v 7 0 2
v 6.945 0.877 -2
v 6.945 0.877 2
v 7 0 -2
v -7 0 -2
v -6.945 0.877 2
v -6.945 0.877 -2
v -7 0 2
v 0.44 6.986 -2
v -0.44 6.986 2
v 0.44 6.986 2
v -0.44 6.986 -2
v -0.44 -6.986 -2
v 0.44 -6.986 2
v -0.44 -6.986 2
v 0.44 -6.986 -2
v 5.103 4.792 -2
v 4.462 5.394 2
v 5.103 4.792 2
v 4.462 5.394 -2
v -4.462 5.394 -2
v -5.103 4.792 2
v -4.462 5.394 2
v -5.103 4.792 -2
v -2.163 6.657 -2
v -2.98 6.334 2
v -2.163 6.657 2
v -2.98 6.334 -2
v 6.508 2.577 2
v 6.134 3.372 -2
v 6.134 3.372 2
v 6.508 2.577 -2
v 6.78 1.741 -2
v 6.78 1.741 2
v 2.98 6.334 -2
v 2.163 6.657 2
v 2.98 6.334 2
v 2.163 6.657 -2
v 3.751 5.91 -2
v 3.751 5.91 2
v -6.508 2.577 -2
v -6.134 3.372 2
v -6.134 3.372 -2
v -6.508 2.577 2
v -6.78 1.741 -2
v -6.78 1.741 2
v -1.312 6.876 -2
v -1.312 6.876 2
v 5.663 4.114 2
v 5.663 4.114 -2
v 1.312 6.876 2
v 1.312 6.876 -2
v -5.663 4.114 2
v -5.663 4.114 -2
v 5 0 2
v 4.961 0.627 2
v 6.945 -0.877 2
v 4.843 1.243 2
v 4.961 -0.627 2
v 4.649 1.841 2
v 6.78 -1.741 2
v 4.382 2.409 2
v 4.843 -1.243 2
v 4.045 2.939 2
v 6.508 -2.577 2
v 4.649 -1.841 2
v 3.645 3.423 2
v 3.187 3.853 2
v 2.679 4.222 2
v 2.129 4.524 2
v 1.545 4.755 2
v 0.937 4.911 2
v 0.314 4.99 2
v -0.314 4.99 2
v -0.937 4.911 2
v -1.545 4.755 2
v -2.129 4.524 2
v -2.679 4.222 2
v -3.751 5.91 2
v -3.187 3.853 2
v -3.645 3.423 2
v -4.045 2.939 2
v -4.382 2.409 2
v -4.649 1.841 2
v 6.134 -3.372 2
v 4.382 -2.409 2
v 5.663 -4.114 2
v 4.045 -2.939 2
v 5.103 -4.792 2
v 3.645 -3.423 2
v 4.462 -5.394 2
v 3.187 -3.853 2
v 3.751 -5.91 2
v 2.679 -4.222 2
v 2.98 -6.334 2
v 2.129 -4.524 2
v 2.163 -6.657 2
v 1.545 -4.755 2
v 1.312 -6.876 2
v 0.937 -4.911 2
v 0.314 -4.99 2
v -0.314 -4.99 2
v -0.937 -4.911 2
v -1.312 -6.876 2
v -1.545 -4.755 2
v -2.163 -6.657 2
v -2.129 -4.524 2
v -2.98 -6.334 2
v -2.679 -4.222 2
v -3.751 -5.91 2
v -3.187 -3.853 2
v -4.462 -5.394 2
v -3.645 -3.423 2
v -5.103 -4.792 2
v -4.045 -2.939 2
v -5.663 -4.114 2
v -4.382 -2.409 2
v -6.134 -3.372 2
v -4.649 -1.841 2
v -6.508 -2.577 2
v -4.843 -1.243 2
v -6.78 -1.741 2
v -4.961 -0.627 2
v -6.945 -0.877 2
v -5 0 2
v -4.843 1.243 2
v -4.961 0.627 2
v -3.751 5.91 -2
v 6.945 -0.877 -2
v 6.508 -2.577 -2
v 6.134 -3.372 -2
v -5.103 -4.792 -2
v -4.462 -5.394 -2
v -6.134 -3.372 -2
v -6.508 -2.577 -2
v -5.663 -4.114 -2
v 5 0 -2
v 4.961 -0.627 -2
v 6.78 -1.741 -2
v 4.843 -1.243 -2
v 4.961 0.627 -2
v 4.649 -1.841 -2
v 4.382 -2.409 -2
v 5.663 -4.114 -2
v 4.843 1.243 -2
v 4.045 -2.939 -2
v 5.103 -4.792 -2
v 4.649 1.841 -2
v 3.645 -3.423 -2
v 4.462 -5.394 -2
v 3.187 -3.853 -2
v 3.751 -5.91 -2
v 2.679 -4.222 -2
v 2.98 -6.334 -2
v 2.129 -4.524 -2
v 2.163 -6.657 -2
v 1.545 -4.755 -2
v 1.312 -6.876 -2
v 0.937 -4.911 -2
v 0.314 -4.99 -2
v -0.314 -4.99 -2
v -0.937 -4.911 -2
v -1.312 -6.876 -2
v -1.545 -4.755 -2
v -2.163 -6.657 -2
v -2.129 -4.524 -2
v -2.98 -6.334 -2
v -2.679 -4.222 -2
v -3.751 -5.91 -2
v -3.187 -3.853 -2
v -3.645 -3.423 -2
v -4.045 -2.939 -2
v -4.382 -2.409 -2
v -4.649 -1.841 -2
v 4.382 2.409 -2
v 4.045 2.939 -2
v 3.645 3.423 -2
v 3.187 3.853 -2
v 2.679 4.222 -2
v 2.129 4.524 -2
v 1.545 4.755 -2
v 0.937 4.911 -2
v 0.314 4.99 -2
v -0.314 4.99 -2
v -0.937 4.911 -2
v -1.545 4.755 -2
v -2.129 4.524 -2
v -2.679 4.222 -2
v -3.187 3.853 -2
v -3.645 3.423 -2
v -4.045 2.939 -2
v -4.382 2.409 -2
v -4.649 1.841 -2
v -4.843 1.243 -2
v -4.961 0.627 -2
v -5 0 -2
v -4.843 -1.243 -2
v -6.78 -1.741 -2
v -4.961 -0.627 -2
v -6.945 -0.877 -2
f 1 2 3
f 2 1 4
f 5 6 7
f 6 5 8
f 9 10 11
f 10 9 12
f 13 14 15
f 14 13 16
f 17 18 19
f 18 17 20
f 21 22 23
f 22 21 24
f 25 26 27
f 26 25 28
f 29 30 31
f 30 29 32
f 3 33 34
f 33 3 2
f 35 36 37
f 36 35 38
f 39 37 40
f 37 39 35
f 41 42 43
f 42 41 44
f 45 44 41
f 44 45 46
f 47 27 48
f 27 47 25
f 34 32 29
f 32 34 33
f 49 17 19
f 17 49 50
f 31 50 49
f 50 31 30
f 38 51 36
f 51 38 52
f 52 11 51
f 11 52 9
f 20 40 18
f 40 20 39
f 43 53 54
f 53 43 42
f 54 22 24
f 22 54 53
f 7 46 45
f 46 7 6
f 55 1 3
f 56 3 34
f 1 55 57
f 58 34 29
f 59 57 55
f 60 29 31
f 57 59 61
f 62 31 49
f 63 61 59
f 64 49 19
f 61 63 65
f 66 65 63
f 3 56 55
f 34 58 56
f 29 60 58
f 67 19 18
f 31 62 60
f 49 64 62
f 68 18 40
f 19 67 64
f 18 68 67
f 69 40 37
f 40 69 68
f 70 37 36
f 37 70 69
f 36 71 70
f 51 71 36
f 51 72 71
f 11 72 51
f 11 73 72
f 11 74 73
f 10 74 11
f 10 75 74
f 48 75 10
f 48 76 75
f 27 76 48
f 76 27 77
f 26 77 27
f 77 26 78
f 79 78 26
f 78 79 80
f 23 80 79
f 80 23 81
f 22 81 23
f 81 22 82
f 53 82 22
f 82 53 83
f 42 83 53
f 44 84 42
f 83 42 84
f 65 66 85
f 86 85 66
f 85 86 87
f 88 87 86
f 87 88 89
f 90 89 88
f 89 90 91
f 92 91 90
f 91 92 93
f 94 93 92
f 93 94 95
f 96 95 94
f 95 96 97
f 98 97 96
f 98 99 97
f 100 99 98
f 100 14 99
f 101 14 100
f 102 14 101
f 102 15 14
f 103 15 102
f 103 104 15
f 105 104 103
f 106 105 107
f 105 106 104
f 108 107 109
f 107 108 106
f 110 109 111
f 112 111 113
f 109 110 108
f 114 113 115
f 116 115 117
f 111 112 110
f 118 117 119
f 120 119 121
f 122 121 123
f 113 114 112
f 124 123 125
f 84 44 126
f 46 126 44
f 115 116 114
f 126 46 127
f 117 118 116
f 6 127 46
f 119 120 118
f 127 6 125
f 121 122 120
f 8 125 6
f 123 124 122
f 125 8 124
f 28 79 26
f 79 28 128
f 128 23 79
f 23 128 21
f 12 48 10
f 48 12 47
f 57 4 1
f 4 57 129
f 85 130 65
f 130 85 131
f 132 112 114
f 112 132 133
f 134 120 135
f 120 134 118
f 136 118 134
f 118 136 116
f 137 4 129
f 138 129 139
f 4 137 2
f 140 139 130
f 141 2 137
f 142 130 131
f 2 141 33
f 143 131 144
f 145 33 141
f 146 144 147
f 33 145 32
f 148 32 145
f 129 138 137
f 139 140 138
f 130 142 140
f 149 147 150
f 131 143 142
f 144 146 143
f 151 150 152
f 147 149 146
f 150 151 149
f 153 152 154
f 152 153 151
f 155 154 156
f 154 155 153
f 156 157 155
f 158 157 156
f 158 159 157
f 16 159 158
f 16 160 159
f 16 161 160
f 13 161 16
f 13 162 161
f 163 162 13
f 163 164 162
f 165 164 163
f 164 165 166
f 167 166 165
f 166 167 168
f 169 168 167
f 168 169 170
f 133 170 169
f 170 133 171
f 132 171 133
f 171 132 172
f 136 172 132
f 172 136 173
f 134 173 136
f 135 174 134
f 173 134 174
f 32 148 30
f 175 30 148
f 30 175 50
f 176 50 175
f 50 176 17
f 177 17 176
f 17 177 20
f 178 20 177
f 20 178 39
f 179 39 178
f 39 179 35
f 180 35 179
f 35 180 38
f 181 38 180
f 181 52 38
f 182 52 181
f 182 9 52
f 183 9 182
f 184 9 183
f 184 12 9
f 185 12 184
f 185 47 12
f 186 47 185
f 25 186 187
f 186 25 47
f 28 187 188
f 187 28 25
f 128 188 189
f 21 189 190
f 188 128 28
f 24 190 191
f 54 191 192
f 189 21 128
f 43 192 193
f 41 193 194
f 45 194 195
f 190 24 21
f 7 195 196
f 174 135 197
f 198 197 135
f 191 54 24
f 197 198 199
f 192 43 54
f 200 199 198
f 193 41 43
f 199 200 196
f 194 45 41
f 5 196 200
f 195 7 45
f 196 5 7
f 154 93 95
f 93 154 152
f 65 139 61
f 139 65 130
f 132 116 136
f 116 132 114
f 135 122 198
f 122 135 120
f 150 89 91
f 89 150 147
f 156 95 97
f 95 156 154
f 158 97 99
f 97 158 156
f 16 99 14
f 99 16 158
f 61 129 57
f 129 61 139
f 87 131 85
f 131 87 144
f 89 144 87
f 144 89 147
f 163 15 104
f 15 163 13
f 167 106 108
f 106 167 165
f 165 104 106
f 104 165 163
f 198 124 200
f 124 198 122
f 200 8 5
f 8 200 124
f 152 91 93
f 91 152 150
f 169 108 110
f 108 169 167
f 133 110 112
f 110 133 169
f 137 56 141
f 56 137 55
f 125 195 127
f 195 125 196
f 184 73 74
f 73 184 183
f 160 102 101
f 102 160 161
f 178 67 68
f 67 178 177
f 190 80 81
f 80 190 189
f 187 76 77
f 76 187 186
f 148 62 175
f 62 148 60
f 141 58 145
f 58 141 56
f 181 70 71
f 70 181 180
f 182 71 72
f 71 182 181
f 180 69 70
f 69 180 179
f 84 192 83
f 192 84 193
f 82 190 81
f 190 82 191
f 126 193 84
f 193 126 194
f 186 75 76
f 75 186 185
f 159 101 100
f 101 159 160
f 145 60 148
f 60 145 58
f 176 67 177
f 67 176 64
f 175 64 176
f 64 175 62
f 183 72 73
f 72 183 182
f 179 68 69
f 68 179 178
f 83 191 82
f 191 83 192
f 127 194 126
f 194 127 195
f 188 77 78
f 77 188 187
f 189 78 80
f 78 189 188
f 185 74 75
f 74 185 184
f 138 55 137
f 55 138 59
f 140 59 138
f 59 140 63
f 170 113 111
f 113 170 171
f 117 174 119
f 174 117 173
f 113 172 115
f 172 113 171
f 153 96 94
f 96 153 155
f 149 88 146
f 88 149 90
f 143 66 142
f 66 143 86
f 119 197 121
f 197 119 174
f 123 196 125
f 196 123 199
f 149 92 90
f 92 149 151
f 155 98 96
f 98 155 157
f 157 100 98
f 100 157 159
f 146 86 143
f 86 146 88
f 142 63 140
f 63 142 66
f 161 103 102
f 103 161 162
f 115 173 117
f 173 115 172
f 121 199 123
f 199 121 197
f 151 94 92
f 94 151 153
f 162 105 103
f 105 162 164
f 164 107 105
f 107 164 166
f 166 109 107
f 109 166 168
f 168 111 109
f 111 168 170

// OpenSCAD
$fn = 50;


difference() {
	union() {
		translate(v = [0, 0, -2.0000000000]) {
			cylinder(h = 4, r = 7.0000000000);
		}
	}
	union() {
		translate(v = [0, 0, -100.0000000000]) {
			cylinder(h = 200, r = 5);
		}
	}
}
